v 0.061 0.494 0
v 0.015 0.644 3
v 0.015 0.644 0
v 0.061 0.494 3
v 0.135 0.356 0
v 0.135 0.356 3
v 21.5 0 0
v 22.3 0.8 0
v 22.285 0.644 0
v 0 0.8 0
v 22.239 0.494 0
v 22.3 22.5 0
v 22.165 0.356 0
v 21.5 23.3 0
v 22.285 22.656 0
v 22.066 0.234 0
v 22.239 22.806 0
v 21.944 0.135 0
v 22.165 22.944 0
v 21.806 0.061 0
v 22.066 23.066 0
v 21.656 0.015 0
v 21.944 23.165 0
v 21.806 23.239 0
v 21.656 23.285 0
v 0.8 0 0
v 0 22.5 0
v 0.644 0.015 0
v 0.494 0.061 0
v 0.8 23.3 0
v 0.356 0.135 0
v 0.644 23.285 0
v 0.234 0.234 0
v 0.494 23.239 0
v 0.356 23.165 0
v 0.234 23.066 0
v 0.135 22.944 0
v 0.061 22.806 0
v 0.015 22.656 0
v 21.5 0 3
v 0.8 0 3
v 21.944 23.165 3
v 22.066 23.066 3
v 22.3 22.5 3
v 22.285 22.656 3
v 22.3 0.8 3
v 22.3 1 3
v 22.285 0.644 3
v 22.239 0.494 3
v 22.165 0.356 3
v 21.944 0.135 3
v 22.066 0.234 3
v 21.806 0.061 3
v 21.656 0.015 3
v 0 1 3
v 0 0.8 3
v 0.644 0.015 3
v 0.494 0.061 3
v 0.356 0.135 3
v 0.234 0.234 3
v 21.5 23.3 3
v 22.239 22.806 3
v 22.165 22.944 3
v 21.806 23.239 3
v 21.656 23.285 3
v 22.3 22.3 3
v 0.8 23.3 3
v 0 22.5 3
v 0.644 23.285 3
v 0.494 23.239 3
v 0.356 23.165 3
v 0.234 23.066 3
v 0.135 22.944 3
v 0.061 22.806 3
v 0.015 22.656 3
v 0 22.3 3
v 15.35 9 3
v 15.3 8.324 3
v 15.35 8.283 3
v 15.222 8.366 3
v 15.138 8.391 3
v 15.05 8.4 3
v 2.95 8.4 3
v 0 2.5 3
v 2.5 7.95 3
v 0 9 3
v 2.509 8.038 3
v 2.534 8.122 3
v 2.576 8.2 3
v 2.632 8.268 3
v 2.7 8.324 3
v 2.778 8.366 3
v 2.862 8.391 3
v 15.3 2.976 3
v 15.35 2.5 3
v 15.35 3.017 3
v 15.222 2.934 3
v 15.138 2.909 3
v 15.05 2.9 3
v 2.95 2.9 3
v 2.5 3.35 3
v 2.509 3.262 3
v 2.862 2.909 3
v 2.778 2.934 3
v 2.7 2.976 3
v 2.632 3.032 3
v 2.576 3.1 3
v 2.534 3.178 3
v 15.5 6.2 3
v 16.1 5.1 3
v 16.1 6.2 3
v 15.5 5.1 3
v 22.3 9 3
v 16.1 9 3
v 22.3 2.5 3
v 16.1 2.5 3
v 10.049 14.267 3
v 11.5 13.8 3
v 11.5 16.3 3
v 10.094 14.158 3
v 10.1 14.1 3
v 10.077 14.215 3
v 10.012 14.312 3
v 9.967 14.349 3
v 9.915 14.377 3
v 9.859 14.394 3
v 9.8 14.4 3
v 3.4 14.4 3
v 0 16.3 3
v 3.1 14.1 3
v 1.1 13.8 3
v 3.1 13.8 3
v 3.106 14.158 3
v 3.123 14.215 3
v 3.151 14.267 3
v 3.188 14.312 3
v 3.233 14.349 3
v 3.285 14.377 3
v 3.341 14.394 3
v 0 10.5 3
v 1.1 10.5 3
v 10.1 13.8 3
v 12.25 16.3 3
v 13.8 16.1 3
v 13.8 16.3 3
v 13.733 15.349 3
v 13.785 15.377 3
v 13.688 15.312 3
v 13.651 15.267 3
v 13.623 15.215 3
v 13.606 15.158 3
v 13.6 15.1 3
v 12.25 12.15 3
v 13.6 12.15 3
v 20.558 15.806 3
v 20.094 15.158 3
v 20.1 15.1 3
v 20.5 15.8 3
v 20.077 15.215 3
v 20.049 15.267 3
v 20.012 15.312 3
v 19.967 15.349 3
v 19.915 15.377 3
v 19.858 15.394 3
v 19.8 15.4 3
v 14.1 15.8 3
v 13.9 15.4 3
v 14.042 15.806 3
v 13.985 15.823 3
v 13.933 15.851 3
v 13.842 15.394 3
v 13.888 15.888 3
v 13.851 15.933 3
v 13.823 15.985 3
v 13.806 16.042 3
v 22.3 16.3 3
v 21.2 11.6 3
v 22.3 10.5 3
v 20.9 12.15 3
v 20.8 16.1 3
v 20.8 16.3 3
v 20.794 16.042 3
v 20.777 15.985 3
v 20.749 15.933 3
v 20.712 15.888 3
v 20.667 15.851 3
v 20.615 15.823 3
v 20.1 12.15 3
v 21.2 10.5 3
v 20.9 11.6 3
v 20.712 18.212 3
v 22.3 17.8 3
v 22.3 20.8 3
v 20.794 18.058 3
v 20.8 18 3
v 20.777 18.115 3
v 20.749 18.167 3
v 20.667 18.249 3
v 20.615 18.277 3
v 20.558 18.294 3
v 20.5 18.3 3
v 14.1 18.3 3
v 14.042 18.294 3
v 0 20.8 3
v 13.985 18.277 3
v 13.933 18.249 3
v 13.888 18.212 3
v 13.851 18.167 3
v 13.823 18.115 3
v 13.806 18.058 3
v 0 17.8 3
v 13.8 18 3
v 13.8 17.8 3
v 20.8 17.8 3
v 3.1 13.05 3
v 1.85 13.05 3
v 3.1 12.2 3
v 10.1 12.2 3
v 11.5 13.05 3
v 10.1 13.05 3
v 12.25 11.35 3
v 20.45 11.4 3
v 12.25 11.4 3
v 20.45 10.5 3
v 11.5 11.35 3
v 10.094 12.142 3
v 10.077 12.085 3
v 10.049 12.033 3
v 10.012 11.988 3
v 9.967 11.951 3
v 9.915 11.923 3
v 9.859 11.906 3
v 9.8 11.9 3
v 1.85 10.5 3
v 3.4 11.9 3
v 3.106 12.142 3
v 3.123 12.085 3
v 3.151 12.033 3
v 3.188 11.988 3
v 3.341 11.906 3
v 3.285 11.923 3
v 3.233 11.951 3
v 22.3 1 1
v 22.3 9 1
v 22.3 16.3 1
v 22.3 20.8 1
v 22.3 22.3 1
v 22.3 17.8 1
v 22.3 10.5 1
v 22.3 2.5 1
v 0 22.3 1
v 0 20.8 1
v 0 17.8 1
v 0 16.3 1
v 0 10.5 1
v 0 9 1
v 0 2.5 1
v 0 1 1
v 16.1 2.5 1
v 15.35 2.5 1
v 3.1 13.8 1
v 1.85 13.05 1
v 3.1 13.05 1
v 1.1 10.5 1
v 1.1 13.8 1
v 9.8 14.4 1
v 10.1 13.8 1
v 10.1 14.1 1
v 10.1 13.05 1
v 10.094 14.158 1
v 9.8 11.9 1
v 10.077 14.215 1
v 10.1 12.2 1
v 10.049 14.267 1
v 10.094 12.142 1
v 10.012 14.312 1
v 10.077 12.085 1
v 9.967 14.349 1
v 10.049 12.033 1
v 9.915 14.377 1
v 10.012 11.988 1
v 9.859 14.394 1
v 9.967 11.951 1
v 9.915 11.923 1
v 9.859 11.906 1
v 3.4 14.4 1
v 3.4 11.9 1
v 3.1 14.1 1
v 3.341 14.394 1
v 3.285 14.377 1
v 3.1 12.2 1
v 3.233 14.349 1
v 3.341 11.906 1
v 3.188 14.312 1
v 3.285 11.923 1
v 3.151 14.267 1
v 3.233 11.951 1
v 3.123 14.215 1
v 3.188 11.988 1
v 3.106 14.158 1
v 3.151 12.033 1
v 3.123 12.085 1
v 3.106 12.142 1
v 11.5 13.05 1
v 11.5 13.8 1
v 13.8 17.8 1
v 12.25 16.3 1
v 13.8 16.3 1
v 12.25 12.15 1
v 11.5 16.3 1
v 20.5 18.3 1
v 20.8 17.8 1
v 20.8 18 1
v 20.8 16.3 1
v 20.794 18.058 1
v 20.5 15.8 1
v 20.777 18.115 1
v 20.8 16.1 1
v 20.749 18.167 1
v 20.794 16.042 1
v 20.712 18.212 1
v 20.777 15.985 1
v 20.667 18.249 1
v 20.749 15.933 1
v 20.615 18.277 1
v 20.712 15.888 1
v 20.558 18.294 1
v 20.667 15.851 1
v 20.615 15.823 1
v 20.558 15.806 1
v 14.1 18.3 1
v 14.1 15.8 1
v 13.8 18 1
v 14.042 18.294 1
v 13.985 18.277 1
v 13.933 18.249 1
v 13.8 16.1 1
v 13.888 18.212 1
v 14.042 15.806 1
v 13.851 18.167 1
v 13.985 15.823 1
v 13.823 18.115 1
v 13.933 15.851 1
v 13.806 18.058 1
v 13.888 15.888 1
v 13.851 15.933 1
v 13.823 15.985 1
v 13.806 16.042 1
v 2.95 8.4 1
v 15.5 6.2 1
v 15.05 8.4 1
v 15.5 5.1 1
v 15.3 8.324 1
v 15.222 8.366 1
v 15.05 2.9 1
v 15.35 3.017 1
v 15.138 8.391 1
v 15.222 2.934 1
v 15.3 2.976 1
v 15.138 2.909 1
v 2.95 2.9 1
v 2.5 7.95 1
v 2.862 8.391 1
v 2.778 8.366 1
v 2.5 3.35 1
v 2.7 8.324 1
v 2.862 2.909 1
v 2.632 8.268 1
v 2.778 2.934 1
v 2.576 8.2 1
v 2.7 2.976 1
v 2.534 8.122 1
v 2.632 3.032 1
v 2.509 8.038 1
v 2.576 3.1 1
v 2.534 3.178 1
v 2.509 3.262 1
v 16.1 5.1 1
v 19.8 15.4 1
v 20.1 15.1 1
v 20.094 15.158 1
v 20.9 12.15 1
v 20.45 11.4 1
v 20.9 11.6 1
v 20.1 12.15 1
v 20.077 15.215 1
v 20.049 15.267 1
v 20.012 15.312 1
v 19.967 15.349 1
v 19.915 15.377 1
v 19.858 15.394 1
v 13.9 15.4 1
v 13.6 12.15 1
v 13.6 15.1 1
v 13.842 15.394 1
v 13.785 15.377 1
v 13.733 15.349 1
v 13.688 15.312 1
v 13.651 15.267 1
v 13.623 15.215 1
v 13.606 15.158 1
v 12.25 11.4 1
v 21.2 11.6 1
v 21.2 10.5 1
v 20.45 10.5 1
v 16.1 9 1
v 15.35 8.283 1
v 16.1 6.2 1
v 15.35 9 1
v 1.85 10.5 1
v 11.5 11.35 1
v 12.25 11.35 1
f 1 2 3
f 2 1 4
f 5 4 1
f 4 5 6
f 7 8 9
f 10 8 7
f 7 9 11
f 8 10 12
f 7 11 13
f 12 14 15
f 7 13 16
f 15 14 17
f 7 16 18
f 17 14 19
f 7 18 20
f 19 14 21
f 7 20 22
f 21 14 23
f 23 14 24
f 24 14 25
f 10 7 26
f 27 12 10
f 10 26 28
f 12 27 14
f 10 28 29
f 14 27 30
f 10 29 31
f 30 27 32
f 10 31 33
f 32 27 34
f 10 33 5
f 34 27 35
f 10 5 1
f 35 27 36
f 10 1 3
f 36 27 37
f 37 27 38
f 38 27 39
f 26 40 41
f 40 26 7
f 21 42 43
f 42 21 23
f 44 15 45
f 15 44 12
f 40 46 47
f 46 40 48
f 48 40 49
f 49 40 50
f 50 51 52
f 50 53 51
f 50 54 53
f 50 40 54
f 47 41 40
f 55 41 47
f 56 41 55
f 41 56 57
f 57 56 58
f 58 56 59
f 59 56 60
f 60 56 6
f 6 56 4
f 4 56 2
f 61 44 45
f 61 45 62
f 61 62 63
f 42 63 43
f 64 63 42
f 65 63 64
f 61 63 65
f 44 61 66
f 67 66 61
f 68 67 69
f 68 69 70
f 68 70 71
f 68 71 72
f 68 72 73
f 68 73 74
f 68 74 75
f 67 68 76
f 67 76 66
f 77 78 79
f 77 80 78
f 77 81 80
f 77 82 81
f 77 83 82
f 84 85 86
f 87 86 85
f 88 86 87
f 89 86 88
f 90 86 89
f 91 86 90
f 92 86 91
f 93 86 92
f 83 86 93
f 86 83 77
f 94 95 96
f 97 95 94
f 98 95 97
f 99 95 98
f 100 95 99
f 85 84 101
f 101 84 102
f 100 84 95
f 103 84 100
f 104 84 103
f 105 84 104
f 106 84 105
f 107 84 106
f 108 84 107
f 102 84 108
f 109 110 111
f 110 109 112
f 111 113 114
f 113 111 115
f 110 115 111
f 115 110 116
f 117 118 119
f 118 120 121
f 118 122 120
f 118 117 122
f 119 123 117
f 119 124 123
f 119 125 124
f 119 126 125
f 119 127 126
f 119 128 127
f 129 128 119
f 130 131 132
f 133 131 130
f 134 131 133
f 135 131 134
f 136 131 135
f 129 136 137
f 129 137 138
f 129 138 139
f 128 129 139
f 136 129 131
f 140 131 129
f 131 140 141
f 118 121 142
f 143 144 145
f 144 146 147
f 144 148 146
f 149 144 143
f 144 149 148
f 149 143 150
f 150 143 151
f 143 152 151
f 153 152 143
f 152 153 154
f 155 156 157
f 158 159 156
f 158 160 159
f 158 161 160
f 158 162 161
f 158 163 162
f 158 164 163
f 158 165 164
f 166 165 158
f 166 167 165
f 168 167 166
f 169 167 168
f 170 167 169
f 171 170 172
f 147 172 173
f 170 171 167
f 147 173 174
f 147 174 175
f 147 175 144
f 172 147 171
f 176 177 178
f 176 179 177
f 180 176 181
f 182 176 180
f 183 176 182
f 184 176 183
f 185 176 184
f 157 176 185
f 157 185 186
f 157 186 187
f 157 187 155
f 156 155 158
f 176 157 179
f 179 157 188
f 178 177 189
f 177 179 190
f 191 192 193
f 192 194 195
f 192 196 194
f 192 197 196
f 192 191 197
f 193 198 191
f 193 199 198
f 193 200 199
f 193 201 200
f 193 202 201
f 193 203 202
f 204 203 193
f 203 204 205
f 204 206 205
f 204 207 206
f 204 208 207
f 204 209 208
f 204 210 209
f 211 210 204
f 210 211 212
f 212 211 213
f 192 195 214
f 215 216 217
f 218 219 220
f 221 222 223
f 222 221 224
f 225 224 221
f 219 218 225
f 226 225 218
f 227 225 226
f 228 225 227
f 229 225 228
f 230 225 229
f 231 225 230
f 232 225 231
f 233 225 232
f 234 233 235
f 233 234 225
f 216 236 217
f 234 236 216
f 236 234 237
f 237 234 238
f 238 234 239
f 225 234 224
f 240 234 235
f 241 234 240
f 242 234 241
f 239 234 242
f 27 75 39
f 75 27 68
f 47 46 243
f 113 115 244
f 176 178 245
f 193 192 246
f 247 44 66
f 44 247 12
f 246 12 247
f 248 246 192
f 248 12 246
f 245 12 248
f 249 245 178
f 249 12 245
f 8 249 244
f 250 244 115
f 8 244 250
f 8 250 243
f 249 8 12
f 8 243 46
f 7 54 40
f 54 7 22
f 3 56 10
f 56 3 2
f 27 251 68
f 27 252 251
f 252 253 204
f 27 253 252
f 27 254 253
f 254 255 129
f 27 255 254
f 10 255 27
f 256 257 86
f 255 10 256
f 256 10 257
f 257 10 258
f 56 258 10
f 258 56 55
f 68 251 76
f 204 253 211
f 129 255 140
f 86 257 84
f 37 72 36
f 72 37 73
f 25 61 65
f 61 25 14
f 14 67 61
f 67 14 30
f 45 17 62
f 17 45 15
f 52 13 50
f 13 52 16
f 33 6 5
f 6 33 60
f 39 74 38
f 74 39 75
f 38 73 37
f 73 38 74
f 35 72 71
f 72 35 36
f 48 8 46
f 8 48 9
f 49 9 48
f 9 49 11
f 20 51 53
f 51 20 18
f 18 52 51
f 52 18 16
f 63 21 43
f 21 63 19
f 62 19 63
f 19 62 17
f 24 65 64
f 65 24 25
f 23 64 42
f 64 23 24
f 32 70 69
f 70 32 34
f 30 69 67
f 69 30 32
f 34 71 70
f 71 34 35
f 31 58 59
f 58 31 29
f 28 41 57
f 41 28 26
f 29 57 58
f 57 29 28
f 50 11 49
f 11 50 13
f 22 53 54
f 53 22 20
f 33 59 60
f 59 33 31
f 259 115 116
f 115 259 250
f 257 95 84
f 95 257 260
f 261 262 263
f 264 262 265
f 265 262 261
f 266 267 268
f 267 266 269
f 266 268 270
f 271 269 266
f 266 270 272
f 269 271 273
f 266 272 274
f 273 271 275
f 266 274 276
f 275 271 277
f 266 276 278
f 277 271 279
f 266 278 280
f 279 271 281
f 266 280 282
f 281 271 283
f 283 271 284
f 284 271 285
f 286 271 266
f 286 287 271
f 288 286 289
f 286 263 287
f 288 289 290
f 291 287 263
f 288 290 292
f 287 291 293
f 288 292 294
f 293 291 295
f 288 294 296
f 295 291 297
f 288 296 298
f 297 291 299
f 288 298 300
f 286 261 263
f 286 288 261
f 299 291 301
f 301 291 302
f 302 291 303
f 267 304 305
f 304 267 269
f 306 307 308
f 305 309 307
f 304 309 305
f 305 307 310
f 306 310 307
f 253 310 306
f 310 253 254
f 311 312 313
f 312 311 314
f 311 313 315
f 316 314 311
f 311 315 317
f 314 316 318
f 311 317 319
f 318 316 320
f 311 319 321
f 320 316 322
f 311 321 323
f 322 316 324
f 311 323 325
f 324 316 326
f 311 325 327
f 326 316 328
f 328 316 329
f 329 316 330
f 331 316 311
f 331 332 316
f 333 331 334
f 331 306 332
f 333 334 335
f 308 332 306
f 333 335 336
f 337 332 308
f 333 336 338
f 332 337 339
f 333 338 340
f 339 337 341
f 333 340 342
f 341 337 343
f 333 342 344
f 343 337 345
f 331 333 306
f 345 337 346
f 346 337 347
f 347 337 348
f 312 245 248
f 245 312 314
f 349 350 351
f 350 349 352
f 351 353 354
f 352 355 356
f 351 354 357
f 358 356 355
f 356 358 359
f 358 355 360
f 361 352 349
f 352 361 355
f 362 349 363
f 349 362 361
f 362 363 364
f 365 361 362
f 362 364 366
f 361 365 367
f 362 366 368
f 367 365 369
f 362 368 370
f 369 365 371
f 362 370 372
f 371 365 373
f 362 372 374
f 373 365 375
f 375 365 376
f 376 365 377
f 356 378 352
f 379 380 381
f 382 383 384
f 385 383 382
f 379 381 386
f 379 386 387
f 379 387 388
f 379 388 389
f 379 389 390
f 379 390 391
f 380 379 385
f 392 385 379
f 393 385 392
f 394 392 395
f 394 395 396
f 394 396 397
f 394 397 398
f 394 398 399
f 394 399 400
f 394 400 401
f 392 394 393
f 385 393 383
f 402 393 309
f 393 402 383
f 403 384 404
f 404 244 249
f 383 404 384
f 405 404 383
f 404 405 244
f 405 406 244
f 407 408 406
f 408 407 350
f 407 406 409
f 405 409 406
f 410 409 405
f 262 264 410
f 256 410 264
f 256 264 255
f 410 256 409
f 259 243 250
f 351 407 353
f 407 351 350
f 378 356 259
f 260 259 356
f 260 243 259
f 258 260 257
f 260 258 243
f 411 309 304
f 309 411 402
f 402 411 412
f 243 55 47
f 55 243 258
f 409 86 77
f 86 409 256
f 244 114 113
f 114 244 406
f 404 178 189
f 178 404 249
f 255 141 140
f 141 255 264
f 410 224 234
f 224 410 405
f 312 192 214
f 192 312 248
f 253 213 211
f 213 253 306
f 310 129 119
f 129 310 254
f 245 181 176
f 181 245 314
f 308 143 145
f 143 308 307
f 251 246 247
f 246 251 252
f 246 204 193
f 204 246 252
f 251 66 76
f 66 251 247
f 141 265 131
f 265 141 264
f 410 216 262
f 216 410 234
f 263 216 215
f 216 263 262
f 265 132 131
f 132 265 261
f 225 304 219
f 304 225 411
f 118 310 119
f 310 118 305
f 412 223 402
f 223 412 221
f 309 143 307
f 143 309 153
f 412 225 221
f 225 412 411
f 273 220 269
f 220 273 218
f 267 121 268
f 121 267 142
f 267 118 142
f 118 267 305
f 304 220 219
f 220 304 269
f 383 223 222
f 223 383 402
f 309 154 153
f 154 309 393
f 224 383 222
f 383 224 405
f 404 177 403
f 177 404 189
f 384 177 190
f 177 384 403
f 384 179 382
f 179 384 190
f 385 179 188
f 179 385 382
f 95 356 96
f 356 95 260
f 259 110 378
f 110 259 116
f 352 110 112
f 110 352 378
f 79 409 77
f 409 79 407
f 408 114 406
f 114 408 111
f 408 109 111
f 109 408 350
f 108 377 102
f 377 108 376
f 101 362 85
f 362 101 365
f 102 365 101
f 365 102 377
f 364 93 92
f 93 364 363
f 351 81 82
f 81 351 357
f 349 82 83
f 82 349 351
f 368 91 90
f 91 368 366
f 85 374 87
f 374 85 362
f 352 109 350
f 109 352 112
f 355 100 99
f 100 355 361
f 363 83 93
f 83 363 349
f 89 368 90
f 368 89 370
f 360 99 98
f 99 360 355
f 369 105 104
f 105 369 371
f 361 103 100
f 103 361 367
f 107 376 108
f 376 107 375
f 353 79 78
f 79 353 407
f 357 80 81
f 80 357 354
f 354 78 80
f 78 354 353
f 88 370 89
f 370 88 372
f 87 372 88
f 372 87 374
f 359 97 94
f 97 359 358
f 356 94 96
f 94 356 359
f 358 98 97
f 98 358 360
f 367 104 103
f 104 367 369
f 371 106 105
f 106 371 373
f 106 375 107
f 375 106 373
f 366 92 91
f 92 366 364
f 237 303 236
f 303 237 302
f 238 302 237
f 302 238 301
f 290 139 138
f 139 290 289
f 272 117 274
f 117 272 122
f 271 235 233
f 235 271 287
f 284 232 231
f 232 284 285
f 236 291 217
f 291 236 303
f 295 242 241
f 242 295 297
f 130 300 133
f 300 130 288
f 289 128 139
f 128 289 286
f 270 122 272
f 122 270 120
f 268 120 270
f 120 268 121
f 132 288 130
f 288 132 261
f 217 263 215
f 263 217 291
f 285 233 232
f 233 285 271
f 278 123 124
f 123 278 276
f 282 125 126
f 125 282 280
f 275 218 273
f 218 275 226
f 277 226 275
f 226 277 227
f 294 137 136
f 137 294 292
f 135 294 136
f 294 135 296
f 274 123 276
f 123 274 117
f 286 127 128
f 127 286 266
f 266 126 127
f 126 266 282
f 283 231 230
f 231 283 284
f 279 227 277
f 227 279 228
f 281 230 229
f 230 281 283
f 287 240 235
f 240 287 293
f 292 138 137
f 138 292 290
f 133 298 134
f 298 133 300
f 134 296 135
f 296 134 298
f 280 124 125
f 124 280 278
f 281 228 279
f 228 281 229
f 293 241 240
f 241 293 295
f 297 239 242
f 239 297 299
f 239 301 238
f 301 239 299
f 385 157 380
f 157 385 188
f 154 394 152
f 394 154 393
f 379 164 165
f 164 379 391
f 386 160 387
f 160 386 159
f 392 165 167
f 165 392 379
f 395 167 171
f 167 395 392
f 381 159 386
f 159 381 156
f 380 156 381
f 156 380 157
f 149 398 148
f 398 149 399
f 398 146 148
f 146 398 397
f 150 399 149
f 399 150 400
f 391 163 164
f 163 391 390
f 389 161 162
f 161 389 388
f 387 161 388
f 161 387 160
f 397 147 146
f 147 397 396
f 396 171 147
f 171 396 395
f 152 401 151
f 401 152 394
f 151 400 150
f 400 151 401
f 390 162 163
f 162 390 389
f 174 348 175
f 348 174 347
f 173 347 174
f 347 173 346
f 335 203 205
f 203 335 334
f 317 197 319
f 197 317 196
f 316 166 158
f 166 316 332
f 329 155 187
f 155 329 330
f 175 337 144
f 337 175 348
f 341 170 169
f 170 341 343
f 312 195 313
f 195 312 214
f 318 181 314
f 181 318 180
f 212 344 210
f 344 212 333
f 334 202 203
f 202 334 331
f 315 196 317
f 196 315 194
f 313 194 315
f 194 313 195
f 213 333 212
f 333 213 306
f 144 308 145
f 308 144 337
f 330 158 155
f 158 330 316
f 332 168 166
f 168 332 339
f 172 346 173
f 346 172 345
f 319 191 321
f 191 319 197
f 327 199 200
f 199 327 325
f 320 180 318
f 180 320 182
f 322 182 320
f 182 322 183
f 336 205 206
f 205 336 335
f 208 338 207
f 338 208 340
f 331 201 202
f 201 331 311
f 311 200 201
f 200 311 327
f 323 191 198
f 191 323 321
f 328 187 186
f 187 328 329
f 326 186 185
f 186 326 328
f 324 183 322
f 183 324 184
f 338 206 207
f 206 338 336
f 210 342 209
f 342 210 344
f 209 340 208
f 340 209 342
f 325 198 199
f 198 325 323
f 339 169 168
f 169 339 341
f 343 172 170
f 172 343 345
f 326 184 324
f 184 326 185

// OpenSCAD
// Servo feedback carrier V16
// Rebuilt cleanly from saved V16 parameters after corrupt source recovery.

$fn = 32;

// ============================================================================
// GLOBAL BOARD SETTINGS
// ============================================================================

layout_x = 22.30;   // [10.00:0.01:60.00]
layout_y = 23.30;   // [10.00:0.01:60.00]
edge_left = 0.00;   // [0.00:0.01:20.00]
edge_right = 0.00;  // [0.00:0.01:20.00]
edge_top = 0.00;    // [0.00:0.01:20.00]
edge_bottom = 0.00; // [0.00:0.01:20.00]

plate_z = 3.00;     // [1.00:0.01:10.00]
recess_d = 2.00;    // [0.50:0.01:5.00]
corner_r = 0.80;    // [0.00:0.01:5.00]

rail_w = 1.50;       // [0.50:0.01:5.00]
branch_w = 0.75;     // [0.25:0.01:3.00]
join_overlap = 0.05; // [0.00:0.01:1.00]

// ============================================================================
// RAIL POSITIONS
// ============================================================================

rail_5v_y  = 1.00;   // [0.00:0.01:40.00]
rail_gnd_y = 9.00;   // [0.00:0.01:40.00]
rail_adc_y = 16.30;  // [0.00:0.01:40.00]
rail_pwm_y = 20.80;  // [0.00:0.01:40.00]

// ============================================================================
// ELECTROLYTIC POCKET + CHANNELS
// ============================================================================

elcap_x = 2.50;    // [0.00:0.01:40.00]
elcap_y = 2.90;    // [0.00:0.01:40.00]
elcap_w = 13.00;   // [0.50:0.01:40.00]
elcap_h = 5.50;    // [0.50:0.01:40.00]
elcap_r = 0.45;    // [0.00:0.01:5.00]

elcap_branch_x = 15.35; // [0.00:0.01:40.00]

elcap_5v_branch_y = 1.75; // [0.00:0.01:40.00]
elcap_5v_branch_h = 3.35; // [0.10:0.01:20.00]

elcap_gnd_branch_y = 6.20; // [0.00:0.01:40.00]
elcap_gnd_branch_h = 3.55; // [0.10:0.01:20.00]

// ============================================================================
// 20K POCKET + LEFT GND ELBOW
// ============================================================================

r20k_x = 3.10;   // [0.00:0.01:40.00]
r20k_y = 11.90;  // [0.00:0.01:40.00]
r20k_w = 7.00;   // [0.50:0.01:40.00]
r20k_h = 2.50;   // [0.50:0.01:20.00]
r20k_r = 0.30;   // [0.00:0.01:5.00]

left_gnd_drop_x = 1.10; // [0.00:0.01:40.00]
left_gnd_drop_y = 9.75; // [0.00:0.01:40.00]
left_gnd_drop_h = 3.30; // [0.10:0.01:20.00]

left_gnd_run_x = 1.10;  // [0.00:0.01:40.00]
left_gnd_run_y = 13.05; // [0.00:0.01:40.00]
left_gnd_run_w = 2.45;  // [0.10:0.01:20.00]

r20k_fb_run_x = 10.10; // [0.00:0.01:40.00]
r20k_fb_run_y = 13.05; // [0.00:0.01:40.00]
r20k_fb_run_w = 1.50;  // [0.10:0.01:20.00]

// ============================================================================
// SHARED VERTICAL FB BRANCH
// ============================================================================

shared_fb_x = 11.50;  // [0.00:0.01:40.00]
shared_fb_y = 11.35;  // [0.00:0.01:40.00]
shared_fb_h = 5.78;   // [0.10:0.01:20.00]

// ============================================================================
// CERAMIC POCKET + CHANNELS
// ============================================================================

ceramic_x = 13.60;  // [0.00:0.01:40.00]
ceramic_y = 11.40;  // [0.00:0.01:40.00]
ceramic_w = 6.50;   // [0.50:0.01:40.00]
ceramic_h = 4.00;   // [0.50:0.01:20.00]
ceramic_r = 0.30;   // [0.00:0.01:5.00]

ceramic_fb_run_x = 11.50; // [0.00:0.01:40.00]
ceramic_fb_run_y = 11.40; // [0.00:0.01:40.00]
ceramic_fb_run_w = 2.45;  // [0.10:0.01:20.00]

right_gnd_drop_x = 20.45; // [0.00:0.01:40.00]
right_gnd_drop_y = 9.75;  // [0.00:0.01:40.00]
right_gnd_drop_h = 1.80;  // [0.10:0.01:20.00]

right_gnd_run_x = 19.75;  // [0.00:0.01:40.00]
right_gnd_run_y = 11.40;  // [0.00:0.01:40.00]
right_gnd_run_w = 1.10;   // [0.10:0.01:20.00]

// ============================================================================
// 10K POCKET
// ============================================================================

r10k_x = 13.80;   // [0.00:0.01:40.00]
r10k_y = 15.80;   // [0.00:0.01:40.00]
r10k_w = 7.00;    // [0.50:0.01:40.00]
r10k_h = 2.50;    // [0.50:0.01:20.00]
r10k_r = 0.30;    // [0.00:0.01:5.00]

// ============================================================================
// DERIVED VALUES
// ============================================================================

origin_x = edge_left;
origin_y = edge_top;
plate_x = layout_x + edge_left + edge_right;
plate_y = layout_y + edge_top + edge_bottom;

rail_5v_mid  = origin_y + rail_5v_y  + rail_w / 2;
rail_gnd_mid = origin_y + rail_gnd_y + rail_w / 2;
rail_adc_mid = origin_y + rail_adc_y + rail_w / 2;
rail_pwm_mid = origin_y + rail_pwm_y + rail_w / 2;

// ============================================================================
// GEOMETRY HELPERS
// ============================================================================

module rounded_rect_2d(x, y, r) {
  hull() {
    translate([r, r]) circle(r = r);
    translate([x - r, r]) circle(r = r);
    translate([r, y - r]) circle(r = r);
    translate([x - r, y - r]) circle(r = r);
  }
}

module rounded_cut(x, y, z, r) {
  linear_extrude(height = z)
    rounded_rect_2d(x, y, min(r, x / 2, y / 2));
}

module recess_rect(x, y, sx, sy, r = 0) {
  translate([x, y, plate_z - recess_d])
    if (r > 0) {
      rounded_cut(sx, sy, recess_d + 0.04, r);
    } else {
      cube([sx, sy, recess_d + 0.04]);
    }
}

module rail(y_pos) {
  recess_rect(0, origin_y + y_pos, plate_x, rail_w);
}

module local_recess_rect(x, y, sx, sy, r = 0) {
  recess_rect(origin_x + x, origin_y + y, sx, sy, r);
}

// ============================================================================
// MAIN SOLID
// ============================================================================

difference() {
  rounded_cut(plate_x, plate_y, plate_z, corner_r);

  rail(rail_5v_y);
  rail(rail_gnd_y);
  rail(rail_adc_y);
  rail(rail_pwm_y);

  local_recess_rect(left_gnd_drop_x, left_gnd_drop_y, branch_w, left_gnd_drop_h);
  local_recess_rect(left_gnd_run_x, left_gnd_run_y, left_gnd_run_w, branch_w);

  local_recess_rect(shared_fb_x, shared_fb_y, branch_w, shared_fb_h + join_overlap);
  local_recess_rect(r20k_fb_run_x, r20k_fb_run_y, r20k_fb_run_w + join_overlap, branch_w);
  local_recess_rect(ceramic_fb_run_x, ceramic_fb_run_y, ceramic_fb_run_w + join_overlap, branch_w);

  local_recess_rect(right_gnd_drop_x, right_gnd_drop_y, branch_w, right_gnd_drop_h + join_overlap);
  local_recess_rect(right_gnd_run_x, right_gnd_run_y, right_gnd_run_w + join_overlap, branch_w);

  local_recess_rect(elcap_branch_x, elcap_5v_branch_y, branch_w, elcap_5v_branch_h);
  local_recess_rect(elcap_branch_x, elcap_gnd_branch_y, branch_w, elcap_gnd_branch_h);

  local_recess_rect(elcap_x, elcap_y, elcap_w, elcap_h, elcap_r);
  local_recess_rect(r20k_x, r20k_y, r20k_w, r20k_h, r20k_r);
  local_recess_rect(ceramic_x, ceramic_y, ceramic_w, ceramic_h, ceramic_r);
  local_recess_rect(r10k_x, r10k_y, r10k_w, r10k_h, r10k_r);
}
